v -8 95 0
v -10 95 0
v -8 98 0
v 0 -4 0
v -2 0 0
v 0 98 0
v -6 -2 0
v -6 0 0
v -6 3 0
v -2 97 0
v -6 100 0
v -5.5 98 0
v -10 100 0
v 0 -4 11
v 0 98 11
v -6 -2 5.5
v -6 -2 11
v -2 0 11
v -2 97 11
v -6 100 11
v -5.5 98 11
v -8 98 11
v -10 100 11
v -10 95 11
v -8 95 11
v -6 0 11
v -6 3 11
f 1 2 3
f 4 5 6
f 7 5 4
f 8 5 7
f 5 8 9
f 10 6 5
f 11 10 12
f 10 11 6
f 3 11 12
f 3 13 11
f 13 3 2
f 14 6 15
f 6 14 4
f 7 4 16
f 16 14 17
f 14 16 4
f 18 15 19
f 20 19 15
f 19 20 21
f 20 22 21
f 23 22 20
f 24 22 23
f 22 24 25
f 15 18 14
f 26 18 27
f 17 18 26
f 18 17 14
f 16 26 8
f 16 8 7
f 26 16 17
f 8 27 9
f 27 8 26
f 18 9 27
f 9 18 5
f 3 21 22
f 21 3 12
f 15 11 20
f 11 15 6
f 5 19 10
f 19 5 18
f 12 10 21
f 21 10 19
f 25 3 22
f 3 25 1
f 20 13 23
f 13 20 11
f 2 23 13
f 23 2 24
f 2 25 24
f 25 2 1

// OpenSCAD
module prism(l, w, h) {
       polyhedron(points=[
               [0,0,h],           // 0    front top corner
               [0,0,0],[w,0,0],   // 1, 2 front left & right bottom corners
               [0,l,h],           // 3    back top corner
               [0,l,0],[w,l,0]    // 4, 5 back left & right bottom corners
       ], faces=[ // points for all faces must be ordered clockwise when looking in
               [0,2,1],    // top face
               [3,4,5],    // base face
               [0,1,4,3],  // h face
               [1,2,5,4],  // w face
               [0,3,5,2],  // hypotenuse face
       ]);
}

module left_side() {
     union() {
          translate(v=[0,0,6]) rotate([0,-180,-90]) prism(11, 3, 4);
          difference() {
               rotate([0,0,-90]) prism(11,4,12);
               translate(v=[0,-5,6]) cube([12,12,12]);
          }
     }
}

module right_side() {
     /* TODO: make it little bit bigger */
     union() {
          translate(v=[0,0,6]) rotate([0,180,-90]) prism(11,2,6);
          translate(v=[0,0,2]) rotate([0,0,-90]) prism(11,1,3.5);
          translate(v=[0,0,6]) cube([11,2,2]);
          translate(v=[0,-3,8]) cube([11,5,2]);
     }
}

module plate() {
     cube([11,98,2]);
}

module irobot2_plate() {
     union() {
          plate();
          left_side();
          translate(v=[0,98,0]) right_side();
     }
}

rotate([0,-90,0]) irobot2_plate();
